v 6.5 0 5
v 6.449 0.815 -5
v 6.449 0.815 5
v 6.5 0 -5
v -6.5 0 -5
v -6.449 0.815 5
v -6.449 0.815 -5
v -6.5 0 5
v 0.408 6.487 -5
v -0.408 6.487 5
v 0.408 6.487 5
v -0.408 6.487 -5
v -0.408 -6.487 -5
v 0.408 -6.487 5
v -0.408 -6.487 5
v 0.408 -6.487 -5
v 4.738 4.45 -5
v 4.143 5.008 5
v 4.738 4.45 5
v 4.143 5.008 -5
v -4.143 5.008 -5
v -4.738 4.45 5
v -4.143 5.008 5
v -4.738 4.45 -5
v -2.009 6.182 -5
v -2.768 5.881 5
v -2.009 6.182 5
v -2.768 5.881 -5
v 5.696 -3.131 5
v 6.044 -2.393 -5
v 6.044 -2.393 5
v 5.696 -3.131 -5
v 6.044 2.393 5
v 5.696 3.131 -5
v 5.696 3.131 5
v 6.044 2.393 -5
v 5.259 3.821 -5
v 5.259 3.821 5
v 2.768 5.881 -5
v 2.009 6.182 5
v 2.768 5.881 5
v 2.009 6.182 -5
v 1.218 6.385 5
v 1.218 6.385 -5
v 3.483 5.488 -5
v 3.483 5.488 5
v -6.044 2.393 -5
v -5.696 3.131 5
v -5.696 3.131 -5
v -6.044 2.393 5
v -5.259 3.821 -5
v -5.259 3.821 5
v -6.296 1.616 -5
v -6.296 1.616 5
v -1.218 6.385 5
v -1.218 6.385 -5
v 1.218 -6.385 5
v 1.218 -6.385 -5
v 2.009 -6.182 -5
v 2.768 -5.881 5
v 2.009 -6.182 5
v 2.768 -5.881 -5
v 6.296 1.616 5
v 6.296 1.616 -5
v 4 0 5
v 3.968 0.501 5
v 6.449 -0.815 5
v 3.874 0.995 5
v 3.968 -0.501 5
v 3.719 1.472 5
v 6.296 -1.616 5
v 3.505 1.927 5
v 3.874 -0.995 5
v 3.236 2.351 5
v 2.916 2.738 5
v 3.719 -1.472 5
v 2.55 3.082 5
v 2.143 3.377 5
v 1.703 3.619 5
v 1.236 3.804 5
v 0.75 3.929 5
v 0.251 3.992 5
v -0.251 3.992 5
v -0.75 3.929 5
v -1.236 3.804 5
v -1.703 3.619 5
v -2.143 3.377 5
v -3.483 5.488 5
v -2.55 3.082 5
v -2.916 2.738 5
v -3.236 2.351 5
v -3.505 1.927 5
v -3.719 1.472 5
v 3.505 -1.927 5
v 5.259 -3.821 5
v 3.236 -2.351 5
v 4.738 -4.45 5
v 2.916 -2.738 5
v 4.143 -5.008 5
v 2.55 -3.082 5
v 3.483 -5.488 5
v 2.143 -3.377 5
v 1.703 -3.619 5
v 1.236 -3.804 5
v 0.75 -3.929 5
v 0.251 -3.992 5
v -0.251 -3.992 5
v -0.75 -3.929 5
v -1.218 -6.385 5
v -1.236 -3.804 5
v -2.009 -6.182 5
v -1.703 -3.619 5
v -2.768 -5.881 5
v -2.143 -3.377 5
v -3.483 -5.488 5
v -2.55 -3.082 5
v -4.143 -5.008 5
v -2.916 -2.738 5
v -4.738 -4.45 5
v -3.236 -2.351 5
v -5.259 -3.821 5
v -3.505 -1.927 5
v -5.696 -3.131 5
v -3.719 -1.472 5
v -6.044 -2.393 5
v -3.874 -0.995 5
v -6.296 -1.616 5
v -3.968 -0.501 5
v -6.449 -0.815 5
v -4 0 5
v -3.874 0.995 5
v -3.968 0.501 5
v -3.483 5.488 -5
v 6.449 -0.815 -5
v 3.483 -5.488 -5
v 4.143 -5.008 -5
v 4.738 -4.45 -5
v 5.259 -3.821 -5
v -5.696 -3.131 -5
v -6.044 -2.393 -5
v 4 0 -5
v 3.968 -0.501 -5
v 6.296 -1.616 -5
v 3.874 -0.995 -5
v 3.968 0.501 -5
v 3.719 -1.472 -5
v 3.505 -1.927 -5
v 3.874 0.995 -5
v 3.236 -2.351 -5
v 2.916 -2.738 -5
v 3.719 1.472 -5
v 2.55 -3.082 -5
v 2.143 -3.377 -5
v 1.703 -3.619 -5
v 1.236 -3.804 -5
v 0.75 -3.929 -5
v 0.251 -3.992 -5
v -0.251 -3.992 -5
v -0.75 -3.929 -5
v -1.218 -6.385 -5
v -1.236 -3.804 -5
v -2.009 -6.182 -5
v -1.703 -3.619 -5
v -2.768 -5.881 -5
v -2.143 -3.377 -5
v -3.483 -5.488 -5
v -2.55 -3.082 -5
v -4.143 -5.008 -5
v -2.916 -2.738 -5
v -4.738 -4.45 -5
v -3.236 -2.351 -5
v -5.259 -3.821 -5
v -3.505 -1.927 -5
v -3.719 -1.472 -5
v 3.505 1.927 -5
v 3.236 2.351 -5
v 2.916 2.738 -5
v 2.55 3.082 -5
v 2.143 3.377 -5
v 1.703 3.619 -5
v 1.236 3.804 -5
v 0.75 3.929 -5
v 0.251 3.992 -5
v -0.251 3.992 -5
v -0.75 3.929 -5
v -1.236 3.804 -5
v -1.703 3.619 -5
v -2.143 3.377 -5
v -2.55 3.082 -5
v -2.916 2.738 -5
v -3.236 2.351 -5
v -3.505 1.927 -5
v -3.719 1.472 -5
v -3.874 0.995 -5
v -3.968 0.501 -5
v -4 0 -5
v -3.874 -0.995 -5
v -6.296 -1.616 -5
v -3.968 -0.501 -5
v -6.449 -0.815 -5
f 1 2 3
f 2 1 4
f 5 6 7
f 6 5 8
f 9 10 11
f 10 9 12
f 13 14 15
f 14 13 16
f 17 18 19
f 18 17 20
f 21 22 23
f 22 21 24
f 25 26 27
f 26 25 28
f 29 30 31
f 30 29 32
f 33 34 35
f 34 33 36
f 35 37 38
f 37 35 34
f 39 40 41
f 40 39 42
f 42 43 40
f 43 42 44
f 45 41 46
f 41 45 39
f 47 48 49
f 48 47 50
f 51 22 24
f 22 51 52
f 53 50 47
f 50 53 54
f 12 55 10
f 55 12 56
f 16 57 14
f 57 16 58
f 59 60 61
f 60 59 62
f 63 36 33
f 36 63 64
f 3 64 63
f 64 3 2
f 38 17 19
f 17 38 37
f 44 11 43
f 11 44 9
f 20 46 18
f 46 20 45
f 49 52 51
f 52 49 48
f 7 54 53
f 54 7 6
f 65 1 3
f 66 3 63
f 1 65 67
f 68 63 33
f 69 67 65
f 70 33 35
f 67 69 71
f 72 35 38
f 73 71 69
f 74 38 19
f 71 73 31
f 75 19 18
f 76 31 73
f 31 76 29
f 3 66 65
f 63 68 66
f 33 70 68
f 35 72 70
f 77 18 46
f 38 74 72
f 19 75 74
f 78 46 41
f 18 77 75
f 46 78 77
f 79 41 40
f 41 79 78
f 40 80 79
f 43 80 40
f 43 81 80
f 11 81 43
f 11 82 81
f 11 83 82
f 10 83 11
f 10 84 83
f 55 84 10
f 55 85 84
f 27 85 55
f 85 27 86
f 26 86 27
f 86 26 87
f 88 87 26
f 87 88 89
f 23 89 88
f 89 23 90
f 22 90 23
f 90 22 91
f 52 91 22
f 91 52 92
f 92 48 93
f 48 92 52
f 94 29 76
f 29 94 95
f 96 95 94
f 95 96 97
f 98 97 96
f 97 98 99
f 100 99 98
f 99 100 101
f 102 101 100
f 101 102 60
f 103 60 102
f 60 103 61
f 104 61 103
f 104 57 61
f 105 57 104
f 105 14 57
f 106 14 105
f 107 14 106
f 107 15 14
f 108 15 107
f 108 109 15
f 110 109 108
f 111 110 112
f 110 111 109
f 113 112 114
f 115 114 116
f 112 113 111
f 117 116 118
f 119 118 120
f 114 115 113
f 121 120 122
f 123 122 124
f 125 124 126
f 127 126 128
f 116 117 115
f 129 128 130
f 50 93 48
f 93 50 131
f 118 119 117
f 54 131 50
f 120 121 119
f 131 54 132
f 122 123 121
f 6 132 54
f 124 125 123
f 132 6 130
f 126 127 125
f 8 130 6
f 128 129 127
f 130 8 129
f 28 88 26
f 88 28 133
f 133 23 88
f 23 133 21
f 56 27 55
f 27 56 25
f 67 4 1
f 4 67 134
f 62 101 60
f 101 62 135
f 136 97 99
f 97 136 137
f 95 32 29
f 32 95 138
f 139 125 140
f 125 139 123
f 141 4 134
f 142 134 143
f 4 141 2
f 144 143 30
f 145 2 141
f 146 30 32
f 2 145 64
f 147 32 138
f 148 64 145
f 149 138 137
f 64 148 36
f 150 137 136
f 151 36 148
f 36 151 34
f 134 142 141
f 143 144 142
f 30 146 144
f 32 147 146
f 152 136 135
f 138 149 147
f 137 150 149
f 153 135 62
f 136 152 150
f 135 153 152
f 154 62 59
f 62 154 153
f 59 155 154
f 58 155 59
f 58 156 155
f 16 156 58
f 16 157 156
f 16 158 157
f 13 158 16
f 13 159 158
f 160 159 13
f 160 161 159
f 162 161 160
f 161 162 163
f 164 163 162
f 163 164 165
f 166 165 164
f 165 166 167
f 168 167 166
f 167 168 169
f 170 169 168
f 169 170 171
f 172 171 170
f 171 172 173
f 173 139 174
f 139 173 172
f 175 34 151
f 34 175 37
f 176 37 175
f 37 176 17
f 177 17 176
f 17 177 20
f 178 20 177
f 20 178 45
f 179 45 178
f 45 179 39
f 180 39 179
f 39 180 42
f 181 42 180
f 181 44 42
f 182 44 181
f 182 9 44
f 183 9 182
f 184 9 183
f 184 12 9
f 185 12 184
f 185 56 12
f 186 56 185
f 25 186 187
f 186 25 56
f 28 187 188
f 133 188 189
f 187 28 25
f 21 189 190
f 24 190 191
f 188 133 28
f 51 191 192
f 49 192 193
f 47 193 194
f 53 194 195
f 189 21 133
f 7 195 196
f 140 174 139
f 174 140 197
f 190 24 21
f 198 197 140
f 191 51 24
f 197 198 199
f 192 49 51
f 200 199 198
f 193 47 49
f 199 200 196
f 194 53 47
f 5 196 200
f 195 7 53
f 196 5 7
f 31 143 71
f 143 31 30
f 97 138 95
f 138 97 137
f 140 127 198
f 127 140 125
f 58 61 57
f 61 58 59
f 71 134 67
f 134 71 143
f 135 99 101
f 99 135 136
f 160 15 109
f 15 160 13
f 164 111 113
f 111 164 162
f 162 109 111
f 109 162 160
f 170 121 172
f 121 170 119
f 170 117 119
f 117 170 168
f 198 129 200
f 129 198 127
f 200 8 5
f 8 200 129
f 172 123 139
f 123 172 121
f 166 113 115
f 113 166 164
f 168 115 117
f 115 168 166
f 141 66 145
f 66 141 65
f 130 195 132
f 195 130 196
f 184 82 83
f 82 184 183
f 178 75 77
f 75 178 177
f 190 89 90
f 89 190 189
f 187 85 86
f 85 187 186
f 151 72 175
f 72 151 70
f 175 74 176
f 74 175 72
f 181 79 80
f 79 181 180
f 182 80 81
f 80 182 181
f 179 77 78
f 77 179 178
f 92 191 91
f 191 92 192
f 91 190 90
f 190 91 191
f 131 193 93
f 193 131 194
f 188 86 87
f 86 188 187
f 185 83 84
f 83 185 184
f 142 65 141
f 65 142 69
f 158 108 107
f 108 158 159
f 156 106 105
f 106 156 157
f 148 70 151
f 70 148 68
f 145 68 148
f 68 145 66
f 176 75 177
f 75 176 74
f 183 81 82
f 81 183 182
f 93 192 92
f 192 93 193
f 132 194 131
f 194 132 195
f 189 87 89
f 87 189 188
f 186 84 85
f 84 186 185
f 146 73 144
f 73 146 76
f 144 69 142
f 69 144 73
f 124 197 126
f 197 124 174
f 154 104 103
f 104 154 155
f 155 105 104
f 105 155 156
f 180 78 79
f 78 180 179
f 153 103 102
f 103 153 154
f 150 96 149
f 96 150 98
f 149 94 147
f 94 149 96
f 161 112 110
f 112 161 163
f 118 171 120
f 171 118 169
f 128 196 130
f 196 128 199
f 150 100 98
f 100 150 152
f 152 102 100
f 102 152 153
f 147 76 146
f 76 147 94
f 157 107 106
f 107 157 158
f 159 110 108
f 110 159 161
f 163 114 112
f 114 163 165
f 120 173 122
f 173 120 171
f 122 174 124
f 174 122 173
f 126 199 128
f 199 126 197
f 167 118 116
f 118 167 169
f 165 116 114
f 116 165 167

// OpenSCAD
$fn = 50;


difference() {
	union() {
		translate(v = [0, 0, -5.0000000000]) {
			cylinder(h = 10, r = 6.5000000000);
		}
	}
	union() {
		translate(v = [0, 0, -100.0000000000]) {
			cylinder(h = 200, r = 4);
		}
	}
}
